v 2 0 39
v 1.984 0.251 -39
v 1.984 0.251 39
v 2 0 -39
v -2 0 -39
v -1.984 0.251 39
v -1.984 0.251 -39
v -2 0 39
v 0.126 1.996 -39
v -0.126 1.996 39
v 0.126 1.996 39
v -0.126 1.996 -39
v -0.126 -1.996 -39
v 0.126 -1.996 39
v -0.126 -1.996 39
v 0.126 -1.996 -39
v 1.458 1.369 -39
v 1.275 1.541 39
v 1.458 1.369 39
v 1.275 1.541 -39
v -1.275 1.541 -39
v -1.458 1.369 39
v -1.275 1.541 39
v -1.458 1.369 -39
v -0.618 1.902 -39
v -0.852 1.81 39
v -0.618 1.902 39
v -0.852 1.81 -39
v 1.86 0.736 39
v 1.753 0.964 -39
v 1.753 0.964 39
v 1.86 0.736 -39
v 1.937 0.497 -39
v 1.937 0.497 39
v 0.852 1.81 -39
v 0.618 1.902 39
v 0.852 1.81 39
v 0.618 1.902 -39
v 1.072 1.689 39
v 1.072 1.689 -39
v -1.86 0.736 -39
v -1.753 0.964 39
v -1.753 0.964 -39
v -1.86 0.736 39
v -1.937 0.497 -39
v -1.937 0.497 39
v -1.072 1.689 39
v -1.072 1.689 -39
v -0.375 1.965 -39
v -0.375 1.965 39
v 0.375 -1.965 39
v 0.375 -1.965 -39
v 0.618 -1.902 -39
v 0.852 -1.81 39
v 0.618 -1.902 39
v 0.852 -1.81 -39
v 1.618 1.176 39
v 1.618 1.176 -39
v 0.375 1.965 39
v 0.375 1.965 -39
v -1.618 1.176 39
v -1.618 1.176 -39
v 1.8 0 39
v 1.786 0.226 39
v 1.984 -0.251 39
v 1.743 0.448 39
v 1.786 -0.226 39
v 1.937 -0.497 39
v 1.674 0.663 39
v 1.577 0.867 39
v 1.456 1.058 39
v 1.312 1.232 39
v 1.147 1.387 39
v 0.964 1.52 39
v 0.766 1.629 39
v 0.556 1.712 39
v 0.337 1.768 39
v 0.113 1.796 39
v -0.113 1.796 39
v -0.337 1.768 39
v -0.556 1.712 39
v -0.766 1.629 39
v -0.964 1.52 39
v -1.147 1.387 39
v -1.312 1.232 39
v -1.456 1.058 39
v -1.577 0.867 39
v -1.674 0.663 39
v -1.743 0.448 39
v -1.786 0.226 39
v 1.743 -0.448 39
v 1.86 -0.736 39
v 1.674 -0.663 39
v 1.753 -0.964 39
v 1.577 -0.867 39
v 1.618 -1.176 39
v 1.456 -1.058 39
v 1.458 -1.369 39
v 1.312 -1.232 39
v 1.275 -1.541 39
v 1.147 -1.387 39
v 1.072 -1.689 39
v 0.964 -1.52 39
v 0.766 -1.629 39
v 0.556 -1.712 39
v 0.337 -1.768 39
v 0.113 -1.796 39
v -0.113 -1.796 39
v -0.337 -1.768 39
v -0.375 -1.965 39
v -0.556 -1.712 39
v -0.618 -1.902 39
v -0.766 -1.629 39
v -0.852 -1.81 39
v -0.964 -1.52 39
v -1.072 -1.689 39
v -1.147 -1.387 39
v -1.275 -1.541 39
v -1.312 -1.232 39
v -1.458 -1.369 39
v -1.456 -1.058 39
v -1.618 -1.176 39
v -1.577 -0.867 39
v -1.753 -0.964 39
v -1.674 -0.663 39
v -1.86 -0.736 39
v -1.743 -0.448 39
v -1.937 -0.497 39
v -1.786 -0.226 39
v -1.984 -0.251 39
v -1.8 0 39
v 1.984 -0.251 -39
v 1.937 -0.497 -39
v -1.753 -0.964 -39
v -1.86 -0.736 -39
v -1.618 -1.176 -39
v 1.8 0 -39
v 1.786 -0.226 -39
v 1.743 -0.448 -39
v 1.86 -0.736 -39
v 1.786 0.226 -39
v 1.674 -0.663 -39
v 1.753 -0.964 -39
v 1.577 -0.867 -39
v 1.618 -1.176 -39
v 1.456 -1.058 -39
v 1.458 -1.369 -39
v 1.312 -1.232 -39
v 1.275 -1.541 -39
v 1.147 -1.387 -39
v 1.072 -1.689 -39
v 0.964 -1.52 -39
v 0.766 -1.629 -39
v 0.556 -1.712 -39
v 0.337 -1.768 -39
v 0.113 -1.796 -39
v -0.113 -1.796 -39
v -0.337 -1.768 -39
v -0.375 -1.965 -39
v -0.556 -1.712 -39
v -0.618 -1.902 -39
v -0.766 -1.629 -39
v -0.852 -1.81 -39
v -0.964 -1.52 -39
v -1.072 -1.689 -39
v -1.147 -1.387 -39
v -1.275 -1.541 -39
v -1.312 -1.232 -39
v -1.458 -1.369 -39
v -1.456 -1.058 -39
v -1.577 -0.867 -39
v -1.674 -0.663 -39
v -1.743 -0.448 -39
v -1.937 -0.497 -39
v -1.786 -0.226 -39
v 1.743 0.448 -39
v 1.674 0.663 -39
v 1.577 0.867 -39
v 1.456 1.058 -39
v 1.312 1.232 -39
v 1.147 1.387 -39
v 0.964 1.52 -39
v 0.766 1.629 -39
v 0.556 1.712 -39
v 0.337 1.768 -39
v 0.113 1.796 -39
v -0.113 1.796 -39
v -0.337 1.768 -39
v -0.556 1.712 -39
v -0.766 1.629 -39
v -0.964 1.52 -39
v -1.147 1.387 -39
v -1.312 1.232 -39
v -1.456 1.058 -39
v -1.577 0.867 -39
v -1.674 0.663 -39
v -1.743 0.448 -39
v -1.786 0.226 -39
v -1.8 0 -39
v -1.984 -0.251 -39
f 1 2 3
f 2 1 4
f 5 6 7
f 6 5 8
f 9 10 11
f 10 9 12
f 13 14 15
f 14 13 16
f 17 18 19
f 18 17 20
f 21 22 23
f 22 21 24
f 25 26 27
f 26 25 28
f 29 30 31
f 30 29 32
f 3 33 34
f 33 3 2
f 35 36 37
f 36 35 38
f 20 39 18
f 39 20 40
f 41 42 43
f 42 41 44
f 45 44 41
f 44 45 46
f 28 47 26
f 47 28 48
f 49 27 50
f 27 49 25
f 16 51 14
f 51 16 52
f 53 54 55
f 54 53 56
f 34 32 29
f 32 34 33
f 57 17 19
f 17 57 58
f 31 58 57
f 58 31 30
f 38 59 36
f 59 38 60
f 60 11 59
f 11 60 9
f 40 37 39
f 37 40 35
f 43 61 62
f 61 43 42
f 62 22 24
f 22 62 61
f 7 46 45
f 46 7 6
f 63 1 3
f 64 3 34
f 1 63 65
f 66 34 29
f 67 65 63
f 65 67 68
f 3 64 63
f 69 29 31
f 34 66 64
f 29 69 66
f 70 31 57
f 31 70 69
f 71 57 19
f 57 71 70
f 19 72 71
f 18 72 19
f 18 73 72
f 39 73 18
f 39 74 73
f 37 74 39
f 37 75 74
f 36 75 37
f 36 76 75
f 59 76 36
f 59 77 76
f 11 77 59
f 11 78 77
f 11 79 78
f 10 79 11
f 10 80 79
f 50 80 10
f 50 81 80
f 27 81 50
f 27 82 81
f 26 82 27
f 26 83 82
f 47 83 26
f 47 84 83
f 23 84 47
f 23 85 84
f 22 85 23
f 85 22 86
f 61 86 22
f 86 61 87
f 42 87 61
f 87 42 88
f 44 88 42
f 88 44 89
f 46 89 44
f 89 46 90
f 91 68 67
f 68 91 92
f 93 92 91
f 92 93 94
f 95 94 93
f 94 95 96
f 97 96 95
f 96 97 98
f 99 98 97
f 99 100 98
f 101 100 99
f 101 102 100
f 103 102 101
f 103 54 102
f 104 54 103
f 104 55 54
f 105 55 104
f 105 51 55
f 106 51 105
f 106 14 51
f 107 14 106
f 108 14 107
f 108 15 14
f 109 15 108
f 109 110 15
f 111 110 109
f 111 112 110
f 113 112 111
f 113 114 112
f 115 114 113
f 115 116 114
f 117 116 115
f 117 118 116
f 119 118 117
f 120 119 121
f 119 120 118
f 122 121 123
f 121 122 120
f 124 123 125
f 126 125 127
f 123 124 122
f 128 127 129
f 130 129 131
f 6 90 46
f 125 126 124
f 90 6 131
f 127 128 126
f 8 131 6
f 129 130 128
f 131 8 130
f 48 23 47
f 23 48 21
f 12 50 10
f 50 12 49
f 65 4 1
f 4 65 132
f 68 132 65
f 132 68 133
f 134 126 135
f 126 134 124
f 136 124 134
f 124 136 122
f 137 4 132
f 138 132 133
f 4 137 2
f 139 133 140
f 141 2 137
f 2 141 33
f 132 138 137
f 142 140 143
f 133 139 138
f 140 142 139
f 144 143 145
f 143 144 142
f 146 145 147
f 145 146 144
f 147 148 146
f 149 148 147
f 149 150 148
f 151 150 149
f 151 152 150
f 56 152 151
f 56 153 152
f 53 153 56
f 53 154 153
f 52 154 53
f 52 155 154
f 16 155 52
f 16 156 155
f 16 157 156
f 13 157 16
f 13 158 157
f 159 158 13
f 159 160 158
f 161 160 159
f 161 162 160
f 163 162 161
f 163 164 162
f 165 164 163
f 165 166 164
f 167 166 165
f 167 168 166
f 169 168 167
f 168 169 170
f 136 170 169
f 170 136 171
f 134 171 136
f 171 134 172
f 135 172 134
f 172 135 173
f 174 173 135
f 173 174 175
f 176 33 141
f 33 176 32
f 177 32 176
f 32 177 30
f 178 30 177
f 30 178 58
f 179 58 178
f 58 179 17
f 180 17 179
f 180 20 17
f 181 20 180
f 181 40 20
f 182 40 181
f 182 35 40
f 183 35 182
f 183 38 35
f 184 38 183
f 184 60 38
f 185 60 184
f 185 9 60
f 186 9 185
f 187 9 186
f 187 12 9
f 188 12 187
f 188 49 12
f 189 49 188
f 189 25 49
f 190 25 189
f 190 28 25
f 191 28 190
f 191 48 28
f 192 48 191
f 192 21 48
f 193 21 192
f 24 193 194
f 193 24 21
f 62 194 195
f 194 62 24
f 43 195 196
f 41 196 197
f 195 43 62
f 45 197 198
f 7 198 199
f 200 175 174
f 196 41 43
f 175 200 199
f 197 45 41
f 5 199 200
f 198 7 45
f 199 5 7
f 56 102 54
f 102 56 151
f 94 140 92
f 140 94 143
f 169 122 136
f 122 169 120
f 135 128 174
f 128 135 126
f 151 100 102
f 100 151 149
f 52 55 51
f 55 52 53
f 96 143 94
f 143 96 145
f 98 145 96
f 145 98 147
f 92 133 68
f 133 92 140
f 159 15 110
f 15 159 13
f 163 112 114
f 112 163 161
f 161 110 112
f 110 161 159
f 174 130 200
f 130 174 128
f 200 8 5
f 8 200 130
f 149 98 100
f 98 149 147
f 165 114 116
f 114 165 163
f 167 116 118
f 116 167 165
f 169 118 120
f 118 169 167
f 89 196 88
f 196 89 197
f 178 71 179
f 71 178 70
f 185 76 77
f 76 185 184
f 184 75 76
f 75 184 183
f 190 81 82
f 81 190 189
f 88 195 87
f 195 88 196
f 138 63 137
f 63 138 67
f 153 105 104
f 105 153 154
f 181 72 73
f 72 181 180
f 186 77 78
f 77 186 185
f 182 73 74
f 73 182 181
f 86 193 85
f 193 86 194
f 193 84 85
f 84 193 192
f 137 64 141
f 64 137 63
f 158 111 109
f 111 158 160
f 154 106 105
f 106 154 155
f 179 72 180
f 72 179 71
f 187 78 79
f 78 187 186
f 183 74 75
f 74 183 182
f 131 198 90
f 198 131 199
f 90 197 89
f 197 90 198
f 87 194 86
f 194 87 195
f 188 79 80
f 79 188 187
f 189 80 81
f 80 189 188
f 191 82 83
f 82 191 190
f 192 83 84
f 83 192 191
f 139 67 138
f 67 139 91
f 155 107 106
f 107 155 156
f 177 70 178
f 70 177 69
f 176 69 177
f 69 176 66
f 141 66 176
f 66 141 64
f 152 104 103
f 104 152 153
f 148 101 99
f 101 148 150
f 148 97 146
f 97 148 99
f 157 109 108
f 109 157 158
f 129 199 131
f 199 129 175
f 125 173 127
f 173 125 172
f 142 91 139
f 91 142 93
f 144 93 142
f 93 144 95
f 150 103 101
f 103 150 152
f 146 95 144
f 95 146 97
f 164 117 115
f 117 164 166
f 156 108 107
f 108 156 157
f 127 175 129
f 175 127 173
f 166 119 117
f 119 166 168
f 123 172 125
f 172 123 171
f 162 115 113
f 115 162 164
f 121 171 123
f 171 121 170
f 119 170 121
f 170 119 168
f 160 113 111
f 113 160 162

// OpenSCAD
$fn = 50;


difference() {
	union() {
		translate(v = [0, 0, -39.0000000000]) {
			cylinder(h = 78, r = 2.0000000000);
		}
	}
	union() {
		translate(v = [0, 0, -100.0000000000]) {
			cylinder(h = 200, r = 1.8000000000);
		}
	}
}
